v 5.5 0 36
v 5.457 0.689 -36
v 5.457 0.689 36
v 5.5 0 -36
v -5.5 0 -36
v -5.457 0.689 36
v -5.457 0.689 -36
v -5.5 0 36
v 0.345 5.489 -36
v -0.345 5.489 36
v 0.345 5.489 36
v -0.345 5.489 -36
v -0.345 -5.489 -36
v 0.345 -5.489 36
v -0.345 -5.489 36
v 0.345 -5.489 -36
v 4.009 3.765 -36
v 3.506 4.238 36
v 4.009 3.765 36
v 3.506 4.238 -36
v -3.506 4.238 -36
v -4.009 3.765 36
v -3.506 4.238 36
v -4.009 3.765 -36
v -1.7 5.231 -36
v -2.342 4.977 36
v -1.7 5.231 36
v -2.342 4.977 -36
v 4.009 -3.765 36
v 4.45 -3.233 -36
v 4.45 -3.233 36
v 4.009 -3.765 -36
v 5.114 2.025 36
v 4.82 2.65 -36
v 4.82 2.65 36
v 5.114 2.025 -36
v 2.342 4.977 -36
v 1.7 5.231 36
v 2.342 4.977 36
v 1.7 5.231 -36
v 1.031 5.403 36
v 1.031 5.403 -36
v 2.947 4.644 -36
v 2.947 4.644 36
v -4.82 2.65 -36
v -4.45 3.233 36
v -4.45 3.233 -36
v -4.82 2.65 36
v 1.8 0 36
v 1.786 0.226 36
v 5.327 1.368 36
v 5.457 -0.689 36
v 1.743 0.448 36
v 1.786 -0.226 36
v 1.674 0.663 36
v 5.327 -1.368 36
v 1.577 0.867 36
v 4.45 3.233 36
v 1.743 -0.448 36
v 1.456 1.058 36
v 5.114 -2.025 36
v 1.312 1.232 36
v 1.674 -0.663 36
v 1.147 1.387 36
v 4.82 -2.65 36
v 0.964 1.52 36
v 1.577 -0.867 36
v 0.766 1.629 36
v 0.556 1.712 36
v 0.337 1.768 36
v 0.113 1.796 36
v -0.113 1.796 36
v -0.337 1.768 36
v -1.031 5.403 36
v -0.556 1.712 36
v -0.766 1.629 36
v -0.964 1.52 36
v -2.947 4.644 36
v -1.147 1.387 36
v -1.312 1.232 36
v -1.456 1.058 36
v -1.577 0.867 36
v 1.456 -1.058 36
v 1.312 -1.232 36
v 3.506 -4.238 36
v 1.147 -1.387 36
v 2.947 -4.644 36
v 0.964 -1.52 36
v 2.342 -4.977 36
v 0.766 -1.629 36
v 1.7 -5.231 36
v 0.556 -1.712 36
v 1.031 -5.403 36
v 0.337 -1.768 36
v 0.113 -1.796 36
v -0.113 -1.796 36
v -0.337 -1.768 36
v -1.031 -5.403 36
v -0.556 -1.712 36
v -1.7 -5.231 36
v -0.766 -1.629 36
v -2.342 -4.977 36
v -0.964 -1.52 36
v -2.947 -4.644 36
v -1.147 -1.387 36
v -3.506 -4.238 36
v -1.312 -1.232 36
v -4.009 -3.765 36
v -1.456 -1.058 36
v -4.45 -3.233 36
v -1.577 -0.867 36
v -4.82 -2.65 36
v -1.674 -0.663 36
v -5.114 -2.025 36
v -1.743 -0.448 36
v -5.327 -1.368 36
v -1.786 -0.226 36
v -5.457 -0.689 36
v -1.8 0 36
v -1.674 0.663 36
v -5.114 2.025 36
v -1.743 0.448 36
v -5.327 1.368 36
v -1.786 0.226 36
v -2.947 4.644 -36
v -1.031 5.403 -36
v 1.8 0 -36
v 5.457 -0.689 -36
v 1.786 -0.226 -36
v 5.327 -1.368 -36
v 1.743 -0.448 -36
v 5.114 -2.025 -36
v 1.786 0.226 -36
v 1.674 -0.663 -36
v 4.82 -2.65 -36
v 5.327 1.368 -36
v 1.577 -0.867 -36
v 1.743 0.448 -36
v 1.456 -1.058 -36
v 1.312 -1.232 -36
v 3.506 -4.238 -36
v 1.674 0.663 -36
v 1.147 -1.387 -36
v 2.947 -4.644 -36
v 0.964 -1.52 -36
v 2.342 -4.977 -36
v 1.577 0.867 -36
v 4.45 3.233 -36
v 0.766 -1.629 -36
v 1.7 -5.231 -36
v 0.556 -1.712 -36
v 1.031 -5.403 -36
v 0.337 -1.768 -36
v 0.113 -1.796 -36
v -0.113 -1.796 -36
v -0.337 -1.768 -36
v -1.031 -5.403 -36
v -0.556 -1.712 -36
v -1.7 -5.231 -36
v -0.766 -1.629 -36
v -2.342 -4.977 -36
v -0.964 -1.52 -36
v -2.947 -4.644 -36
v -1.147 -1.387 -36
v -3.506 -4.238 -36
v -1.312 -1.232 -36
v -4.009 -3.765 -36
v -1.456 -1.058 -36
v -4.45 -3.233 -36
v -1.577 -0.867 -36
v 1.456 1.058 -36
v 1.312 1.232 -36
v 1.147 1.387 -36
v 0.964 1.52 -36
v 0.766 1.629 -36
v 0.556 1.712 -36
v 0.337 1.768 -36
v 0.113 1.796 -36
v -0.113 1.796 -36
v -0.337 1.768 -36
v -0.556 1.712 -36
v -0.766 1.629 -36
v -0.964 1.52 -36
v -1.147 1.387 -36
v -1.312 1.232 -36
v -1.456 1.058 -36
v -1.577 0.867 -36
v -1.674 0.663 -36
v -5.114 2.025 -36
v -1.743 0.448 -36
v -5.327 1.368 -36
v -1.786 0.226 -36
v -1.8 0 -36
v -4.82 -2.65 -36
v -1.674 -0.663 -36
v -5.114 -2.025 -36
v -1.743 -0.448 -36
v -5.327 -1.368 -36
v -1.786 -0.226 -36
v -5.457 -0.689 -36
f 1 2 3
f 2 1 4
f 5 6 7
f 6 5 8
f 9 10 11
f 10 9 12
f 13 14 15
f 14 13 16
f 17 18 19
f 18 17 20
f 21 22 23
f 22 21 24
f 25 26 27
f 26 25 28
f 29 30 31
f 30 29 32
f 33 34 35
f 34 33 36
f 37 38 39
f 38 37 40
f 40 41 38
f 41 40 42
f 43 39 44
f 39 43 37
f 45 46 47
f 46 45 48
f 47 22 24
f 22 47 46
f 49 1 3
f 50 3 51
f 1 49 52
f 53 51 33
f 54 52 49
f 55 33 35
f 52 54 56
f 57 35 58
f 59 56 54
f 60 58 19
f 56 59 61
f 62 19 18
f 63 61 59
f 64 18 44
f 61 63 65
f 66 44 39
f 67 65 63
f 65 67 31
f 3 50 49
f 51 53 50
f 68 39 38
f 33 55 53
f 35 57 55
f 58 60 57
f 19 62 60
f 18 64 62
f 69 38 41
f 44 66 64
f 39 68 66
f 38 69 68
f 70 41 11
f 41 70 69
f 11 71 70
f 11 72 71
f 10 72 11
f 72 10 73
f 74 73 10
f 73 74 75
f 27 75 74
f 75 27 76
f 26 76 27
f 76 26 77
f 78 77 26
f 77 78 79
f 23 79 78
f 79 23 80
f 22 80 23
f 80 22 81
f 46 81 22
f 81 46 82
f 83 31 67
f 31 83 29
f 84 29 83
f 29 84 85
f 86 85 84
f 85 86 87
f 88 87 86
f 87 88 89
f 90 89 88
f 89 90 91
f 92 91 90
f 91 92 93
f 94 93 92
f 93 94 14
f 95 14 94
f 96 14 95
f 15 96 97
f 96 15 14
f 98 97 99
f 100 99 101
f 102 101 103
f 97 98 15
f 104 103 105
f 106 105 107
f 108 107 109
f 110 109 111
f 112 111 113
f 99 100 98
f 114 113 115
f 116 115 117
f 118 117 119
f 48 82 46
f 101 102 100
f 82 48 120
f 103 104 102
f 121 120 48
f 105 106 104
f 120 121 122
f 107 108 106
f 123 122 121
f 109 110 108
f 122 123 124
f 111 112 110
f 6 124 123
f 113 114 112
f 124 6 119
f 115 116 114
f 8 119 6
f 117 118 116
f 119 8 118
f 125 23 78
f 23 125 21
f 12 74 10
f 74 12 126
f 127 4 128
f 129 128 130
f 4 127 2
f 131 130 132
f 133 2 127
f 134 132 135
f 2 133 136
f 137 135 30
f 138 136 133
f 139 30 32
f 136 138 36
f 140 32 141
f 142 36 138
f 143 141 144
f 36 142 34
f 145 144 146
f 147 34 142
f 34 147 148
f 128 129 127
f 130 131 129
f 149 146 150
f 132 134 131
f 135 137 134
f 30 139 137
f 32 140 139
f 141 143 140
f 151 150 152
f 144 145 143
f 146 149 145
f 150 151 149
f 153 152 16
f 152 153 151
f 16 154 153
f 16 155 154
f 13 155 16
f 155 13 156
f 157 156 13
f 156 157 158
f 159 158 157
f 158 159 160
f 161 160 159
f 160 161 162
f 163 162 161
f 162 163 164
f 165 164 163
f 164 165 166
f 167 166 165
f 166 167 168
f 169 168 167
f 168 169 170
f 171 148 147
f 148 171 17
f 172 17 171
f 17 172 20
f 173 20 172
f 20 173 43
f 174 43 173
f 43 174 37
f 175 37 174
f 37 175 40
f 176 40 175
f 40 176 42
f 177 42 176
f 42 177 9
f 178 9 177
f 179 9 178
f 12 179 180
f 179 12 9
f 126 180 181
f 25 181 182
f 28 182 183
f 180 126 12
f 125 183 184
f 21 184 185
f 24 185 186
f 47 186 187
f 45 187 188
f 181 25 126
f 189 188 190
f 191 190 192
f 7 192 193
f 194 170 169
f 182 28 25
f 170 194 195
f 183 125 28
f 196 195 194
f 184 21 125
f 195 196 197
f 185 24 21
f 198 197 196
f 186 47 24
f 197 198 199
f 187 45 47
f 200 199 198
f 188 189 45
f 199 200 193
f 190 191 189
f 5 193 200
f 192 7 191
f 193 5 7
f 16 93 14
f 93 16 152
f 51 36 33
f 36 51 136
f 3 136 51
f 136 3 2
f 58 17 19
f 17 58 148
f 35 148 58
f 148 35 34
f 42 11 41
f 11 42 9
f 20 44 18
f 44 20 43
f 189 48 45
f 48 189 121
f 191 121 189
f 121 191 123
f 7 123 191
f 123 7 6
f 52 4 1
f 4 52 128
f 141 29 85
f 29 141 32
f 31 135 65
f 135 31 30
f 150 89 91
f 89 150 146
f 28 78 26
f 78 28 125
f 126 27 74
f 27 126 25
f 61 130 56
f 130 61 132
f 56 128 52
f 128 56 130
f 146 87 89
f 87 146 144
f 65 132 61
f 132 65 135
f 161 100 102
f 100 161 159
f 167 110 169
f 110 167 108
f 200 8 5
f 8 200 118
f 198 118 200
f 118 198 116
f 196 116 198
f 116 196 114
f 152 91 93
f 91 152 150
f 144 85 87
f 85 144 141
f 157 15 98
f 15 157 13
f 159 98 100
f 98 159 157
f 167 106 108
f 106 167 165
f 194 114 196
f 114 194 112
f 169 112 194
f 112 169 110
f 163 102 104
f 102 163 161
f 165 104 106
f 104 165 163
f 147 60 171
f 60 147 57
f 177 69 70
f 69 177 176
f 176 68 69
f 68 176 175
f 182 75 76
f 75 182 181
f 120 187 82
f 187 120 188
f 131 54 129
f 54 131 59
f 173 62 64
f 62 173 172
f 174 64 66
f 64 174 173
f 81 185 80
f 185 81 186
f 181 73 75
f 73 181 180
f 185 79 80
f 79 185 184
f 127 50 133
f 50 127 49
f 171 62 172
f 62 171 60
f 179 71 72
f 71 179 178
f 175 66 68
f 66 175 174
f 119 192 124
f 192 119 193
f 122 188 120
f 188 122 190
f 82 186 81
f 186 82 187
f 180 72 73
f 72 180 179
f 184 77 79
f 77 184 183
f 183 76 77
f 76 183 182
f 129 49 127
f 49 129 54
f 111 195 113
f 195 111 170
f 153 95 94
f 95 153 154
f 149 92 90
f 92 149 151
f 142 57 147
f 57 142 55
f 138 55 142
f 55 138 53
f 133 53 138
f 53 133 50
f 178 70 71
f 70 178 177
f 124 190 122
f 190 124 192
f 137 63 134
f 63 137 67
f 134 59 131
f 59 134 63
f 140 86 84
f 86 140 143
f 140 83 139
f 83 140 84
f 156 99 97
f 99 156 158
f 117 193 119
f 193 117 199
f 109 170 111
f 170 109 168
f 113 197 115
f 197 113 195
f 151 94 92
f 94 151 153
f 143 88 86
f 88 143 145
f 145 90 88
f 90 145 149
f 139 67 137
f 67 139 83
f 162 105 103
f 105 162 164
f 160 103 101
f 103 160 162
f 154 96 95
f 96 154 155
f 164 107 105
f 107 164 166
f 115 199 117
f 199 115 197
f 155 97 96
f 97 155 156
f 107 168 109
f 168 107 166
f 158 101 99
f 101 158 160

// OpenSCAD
$fn = 50;


difference() {
	union() {
		translate(v = [0, 0, -36.0000000000]) {
			cylinder(h = 72, r = 5.5000000000);
		}
	}
	union() {
		translate(v = [0, 0, -100.0000000000]) {
			cylinder(h = 200, r = 1.8000000000);
		}
	}
}
